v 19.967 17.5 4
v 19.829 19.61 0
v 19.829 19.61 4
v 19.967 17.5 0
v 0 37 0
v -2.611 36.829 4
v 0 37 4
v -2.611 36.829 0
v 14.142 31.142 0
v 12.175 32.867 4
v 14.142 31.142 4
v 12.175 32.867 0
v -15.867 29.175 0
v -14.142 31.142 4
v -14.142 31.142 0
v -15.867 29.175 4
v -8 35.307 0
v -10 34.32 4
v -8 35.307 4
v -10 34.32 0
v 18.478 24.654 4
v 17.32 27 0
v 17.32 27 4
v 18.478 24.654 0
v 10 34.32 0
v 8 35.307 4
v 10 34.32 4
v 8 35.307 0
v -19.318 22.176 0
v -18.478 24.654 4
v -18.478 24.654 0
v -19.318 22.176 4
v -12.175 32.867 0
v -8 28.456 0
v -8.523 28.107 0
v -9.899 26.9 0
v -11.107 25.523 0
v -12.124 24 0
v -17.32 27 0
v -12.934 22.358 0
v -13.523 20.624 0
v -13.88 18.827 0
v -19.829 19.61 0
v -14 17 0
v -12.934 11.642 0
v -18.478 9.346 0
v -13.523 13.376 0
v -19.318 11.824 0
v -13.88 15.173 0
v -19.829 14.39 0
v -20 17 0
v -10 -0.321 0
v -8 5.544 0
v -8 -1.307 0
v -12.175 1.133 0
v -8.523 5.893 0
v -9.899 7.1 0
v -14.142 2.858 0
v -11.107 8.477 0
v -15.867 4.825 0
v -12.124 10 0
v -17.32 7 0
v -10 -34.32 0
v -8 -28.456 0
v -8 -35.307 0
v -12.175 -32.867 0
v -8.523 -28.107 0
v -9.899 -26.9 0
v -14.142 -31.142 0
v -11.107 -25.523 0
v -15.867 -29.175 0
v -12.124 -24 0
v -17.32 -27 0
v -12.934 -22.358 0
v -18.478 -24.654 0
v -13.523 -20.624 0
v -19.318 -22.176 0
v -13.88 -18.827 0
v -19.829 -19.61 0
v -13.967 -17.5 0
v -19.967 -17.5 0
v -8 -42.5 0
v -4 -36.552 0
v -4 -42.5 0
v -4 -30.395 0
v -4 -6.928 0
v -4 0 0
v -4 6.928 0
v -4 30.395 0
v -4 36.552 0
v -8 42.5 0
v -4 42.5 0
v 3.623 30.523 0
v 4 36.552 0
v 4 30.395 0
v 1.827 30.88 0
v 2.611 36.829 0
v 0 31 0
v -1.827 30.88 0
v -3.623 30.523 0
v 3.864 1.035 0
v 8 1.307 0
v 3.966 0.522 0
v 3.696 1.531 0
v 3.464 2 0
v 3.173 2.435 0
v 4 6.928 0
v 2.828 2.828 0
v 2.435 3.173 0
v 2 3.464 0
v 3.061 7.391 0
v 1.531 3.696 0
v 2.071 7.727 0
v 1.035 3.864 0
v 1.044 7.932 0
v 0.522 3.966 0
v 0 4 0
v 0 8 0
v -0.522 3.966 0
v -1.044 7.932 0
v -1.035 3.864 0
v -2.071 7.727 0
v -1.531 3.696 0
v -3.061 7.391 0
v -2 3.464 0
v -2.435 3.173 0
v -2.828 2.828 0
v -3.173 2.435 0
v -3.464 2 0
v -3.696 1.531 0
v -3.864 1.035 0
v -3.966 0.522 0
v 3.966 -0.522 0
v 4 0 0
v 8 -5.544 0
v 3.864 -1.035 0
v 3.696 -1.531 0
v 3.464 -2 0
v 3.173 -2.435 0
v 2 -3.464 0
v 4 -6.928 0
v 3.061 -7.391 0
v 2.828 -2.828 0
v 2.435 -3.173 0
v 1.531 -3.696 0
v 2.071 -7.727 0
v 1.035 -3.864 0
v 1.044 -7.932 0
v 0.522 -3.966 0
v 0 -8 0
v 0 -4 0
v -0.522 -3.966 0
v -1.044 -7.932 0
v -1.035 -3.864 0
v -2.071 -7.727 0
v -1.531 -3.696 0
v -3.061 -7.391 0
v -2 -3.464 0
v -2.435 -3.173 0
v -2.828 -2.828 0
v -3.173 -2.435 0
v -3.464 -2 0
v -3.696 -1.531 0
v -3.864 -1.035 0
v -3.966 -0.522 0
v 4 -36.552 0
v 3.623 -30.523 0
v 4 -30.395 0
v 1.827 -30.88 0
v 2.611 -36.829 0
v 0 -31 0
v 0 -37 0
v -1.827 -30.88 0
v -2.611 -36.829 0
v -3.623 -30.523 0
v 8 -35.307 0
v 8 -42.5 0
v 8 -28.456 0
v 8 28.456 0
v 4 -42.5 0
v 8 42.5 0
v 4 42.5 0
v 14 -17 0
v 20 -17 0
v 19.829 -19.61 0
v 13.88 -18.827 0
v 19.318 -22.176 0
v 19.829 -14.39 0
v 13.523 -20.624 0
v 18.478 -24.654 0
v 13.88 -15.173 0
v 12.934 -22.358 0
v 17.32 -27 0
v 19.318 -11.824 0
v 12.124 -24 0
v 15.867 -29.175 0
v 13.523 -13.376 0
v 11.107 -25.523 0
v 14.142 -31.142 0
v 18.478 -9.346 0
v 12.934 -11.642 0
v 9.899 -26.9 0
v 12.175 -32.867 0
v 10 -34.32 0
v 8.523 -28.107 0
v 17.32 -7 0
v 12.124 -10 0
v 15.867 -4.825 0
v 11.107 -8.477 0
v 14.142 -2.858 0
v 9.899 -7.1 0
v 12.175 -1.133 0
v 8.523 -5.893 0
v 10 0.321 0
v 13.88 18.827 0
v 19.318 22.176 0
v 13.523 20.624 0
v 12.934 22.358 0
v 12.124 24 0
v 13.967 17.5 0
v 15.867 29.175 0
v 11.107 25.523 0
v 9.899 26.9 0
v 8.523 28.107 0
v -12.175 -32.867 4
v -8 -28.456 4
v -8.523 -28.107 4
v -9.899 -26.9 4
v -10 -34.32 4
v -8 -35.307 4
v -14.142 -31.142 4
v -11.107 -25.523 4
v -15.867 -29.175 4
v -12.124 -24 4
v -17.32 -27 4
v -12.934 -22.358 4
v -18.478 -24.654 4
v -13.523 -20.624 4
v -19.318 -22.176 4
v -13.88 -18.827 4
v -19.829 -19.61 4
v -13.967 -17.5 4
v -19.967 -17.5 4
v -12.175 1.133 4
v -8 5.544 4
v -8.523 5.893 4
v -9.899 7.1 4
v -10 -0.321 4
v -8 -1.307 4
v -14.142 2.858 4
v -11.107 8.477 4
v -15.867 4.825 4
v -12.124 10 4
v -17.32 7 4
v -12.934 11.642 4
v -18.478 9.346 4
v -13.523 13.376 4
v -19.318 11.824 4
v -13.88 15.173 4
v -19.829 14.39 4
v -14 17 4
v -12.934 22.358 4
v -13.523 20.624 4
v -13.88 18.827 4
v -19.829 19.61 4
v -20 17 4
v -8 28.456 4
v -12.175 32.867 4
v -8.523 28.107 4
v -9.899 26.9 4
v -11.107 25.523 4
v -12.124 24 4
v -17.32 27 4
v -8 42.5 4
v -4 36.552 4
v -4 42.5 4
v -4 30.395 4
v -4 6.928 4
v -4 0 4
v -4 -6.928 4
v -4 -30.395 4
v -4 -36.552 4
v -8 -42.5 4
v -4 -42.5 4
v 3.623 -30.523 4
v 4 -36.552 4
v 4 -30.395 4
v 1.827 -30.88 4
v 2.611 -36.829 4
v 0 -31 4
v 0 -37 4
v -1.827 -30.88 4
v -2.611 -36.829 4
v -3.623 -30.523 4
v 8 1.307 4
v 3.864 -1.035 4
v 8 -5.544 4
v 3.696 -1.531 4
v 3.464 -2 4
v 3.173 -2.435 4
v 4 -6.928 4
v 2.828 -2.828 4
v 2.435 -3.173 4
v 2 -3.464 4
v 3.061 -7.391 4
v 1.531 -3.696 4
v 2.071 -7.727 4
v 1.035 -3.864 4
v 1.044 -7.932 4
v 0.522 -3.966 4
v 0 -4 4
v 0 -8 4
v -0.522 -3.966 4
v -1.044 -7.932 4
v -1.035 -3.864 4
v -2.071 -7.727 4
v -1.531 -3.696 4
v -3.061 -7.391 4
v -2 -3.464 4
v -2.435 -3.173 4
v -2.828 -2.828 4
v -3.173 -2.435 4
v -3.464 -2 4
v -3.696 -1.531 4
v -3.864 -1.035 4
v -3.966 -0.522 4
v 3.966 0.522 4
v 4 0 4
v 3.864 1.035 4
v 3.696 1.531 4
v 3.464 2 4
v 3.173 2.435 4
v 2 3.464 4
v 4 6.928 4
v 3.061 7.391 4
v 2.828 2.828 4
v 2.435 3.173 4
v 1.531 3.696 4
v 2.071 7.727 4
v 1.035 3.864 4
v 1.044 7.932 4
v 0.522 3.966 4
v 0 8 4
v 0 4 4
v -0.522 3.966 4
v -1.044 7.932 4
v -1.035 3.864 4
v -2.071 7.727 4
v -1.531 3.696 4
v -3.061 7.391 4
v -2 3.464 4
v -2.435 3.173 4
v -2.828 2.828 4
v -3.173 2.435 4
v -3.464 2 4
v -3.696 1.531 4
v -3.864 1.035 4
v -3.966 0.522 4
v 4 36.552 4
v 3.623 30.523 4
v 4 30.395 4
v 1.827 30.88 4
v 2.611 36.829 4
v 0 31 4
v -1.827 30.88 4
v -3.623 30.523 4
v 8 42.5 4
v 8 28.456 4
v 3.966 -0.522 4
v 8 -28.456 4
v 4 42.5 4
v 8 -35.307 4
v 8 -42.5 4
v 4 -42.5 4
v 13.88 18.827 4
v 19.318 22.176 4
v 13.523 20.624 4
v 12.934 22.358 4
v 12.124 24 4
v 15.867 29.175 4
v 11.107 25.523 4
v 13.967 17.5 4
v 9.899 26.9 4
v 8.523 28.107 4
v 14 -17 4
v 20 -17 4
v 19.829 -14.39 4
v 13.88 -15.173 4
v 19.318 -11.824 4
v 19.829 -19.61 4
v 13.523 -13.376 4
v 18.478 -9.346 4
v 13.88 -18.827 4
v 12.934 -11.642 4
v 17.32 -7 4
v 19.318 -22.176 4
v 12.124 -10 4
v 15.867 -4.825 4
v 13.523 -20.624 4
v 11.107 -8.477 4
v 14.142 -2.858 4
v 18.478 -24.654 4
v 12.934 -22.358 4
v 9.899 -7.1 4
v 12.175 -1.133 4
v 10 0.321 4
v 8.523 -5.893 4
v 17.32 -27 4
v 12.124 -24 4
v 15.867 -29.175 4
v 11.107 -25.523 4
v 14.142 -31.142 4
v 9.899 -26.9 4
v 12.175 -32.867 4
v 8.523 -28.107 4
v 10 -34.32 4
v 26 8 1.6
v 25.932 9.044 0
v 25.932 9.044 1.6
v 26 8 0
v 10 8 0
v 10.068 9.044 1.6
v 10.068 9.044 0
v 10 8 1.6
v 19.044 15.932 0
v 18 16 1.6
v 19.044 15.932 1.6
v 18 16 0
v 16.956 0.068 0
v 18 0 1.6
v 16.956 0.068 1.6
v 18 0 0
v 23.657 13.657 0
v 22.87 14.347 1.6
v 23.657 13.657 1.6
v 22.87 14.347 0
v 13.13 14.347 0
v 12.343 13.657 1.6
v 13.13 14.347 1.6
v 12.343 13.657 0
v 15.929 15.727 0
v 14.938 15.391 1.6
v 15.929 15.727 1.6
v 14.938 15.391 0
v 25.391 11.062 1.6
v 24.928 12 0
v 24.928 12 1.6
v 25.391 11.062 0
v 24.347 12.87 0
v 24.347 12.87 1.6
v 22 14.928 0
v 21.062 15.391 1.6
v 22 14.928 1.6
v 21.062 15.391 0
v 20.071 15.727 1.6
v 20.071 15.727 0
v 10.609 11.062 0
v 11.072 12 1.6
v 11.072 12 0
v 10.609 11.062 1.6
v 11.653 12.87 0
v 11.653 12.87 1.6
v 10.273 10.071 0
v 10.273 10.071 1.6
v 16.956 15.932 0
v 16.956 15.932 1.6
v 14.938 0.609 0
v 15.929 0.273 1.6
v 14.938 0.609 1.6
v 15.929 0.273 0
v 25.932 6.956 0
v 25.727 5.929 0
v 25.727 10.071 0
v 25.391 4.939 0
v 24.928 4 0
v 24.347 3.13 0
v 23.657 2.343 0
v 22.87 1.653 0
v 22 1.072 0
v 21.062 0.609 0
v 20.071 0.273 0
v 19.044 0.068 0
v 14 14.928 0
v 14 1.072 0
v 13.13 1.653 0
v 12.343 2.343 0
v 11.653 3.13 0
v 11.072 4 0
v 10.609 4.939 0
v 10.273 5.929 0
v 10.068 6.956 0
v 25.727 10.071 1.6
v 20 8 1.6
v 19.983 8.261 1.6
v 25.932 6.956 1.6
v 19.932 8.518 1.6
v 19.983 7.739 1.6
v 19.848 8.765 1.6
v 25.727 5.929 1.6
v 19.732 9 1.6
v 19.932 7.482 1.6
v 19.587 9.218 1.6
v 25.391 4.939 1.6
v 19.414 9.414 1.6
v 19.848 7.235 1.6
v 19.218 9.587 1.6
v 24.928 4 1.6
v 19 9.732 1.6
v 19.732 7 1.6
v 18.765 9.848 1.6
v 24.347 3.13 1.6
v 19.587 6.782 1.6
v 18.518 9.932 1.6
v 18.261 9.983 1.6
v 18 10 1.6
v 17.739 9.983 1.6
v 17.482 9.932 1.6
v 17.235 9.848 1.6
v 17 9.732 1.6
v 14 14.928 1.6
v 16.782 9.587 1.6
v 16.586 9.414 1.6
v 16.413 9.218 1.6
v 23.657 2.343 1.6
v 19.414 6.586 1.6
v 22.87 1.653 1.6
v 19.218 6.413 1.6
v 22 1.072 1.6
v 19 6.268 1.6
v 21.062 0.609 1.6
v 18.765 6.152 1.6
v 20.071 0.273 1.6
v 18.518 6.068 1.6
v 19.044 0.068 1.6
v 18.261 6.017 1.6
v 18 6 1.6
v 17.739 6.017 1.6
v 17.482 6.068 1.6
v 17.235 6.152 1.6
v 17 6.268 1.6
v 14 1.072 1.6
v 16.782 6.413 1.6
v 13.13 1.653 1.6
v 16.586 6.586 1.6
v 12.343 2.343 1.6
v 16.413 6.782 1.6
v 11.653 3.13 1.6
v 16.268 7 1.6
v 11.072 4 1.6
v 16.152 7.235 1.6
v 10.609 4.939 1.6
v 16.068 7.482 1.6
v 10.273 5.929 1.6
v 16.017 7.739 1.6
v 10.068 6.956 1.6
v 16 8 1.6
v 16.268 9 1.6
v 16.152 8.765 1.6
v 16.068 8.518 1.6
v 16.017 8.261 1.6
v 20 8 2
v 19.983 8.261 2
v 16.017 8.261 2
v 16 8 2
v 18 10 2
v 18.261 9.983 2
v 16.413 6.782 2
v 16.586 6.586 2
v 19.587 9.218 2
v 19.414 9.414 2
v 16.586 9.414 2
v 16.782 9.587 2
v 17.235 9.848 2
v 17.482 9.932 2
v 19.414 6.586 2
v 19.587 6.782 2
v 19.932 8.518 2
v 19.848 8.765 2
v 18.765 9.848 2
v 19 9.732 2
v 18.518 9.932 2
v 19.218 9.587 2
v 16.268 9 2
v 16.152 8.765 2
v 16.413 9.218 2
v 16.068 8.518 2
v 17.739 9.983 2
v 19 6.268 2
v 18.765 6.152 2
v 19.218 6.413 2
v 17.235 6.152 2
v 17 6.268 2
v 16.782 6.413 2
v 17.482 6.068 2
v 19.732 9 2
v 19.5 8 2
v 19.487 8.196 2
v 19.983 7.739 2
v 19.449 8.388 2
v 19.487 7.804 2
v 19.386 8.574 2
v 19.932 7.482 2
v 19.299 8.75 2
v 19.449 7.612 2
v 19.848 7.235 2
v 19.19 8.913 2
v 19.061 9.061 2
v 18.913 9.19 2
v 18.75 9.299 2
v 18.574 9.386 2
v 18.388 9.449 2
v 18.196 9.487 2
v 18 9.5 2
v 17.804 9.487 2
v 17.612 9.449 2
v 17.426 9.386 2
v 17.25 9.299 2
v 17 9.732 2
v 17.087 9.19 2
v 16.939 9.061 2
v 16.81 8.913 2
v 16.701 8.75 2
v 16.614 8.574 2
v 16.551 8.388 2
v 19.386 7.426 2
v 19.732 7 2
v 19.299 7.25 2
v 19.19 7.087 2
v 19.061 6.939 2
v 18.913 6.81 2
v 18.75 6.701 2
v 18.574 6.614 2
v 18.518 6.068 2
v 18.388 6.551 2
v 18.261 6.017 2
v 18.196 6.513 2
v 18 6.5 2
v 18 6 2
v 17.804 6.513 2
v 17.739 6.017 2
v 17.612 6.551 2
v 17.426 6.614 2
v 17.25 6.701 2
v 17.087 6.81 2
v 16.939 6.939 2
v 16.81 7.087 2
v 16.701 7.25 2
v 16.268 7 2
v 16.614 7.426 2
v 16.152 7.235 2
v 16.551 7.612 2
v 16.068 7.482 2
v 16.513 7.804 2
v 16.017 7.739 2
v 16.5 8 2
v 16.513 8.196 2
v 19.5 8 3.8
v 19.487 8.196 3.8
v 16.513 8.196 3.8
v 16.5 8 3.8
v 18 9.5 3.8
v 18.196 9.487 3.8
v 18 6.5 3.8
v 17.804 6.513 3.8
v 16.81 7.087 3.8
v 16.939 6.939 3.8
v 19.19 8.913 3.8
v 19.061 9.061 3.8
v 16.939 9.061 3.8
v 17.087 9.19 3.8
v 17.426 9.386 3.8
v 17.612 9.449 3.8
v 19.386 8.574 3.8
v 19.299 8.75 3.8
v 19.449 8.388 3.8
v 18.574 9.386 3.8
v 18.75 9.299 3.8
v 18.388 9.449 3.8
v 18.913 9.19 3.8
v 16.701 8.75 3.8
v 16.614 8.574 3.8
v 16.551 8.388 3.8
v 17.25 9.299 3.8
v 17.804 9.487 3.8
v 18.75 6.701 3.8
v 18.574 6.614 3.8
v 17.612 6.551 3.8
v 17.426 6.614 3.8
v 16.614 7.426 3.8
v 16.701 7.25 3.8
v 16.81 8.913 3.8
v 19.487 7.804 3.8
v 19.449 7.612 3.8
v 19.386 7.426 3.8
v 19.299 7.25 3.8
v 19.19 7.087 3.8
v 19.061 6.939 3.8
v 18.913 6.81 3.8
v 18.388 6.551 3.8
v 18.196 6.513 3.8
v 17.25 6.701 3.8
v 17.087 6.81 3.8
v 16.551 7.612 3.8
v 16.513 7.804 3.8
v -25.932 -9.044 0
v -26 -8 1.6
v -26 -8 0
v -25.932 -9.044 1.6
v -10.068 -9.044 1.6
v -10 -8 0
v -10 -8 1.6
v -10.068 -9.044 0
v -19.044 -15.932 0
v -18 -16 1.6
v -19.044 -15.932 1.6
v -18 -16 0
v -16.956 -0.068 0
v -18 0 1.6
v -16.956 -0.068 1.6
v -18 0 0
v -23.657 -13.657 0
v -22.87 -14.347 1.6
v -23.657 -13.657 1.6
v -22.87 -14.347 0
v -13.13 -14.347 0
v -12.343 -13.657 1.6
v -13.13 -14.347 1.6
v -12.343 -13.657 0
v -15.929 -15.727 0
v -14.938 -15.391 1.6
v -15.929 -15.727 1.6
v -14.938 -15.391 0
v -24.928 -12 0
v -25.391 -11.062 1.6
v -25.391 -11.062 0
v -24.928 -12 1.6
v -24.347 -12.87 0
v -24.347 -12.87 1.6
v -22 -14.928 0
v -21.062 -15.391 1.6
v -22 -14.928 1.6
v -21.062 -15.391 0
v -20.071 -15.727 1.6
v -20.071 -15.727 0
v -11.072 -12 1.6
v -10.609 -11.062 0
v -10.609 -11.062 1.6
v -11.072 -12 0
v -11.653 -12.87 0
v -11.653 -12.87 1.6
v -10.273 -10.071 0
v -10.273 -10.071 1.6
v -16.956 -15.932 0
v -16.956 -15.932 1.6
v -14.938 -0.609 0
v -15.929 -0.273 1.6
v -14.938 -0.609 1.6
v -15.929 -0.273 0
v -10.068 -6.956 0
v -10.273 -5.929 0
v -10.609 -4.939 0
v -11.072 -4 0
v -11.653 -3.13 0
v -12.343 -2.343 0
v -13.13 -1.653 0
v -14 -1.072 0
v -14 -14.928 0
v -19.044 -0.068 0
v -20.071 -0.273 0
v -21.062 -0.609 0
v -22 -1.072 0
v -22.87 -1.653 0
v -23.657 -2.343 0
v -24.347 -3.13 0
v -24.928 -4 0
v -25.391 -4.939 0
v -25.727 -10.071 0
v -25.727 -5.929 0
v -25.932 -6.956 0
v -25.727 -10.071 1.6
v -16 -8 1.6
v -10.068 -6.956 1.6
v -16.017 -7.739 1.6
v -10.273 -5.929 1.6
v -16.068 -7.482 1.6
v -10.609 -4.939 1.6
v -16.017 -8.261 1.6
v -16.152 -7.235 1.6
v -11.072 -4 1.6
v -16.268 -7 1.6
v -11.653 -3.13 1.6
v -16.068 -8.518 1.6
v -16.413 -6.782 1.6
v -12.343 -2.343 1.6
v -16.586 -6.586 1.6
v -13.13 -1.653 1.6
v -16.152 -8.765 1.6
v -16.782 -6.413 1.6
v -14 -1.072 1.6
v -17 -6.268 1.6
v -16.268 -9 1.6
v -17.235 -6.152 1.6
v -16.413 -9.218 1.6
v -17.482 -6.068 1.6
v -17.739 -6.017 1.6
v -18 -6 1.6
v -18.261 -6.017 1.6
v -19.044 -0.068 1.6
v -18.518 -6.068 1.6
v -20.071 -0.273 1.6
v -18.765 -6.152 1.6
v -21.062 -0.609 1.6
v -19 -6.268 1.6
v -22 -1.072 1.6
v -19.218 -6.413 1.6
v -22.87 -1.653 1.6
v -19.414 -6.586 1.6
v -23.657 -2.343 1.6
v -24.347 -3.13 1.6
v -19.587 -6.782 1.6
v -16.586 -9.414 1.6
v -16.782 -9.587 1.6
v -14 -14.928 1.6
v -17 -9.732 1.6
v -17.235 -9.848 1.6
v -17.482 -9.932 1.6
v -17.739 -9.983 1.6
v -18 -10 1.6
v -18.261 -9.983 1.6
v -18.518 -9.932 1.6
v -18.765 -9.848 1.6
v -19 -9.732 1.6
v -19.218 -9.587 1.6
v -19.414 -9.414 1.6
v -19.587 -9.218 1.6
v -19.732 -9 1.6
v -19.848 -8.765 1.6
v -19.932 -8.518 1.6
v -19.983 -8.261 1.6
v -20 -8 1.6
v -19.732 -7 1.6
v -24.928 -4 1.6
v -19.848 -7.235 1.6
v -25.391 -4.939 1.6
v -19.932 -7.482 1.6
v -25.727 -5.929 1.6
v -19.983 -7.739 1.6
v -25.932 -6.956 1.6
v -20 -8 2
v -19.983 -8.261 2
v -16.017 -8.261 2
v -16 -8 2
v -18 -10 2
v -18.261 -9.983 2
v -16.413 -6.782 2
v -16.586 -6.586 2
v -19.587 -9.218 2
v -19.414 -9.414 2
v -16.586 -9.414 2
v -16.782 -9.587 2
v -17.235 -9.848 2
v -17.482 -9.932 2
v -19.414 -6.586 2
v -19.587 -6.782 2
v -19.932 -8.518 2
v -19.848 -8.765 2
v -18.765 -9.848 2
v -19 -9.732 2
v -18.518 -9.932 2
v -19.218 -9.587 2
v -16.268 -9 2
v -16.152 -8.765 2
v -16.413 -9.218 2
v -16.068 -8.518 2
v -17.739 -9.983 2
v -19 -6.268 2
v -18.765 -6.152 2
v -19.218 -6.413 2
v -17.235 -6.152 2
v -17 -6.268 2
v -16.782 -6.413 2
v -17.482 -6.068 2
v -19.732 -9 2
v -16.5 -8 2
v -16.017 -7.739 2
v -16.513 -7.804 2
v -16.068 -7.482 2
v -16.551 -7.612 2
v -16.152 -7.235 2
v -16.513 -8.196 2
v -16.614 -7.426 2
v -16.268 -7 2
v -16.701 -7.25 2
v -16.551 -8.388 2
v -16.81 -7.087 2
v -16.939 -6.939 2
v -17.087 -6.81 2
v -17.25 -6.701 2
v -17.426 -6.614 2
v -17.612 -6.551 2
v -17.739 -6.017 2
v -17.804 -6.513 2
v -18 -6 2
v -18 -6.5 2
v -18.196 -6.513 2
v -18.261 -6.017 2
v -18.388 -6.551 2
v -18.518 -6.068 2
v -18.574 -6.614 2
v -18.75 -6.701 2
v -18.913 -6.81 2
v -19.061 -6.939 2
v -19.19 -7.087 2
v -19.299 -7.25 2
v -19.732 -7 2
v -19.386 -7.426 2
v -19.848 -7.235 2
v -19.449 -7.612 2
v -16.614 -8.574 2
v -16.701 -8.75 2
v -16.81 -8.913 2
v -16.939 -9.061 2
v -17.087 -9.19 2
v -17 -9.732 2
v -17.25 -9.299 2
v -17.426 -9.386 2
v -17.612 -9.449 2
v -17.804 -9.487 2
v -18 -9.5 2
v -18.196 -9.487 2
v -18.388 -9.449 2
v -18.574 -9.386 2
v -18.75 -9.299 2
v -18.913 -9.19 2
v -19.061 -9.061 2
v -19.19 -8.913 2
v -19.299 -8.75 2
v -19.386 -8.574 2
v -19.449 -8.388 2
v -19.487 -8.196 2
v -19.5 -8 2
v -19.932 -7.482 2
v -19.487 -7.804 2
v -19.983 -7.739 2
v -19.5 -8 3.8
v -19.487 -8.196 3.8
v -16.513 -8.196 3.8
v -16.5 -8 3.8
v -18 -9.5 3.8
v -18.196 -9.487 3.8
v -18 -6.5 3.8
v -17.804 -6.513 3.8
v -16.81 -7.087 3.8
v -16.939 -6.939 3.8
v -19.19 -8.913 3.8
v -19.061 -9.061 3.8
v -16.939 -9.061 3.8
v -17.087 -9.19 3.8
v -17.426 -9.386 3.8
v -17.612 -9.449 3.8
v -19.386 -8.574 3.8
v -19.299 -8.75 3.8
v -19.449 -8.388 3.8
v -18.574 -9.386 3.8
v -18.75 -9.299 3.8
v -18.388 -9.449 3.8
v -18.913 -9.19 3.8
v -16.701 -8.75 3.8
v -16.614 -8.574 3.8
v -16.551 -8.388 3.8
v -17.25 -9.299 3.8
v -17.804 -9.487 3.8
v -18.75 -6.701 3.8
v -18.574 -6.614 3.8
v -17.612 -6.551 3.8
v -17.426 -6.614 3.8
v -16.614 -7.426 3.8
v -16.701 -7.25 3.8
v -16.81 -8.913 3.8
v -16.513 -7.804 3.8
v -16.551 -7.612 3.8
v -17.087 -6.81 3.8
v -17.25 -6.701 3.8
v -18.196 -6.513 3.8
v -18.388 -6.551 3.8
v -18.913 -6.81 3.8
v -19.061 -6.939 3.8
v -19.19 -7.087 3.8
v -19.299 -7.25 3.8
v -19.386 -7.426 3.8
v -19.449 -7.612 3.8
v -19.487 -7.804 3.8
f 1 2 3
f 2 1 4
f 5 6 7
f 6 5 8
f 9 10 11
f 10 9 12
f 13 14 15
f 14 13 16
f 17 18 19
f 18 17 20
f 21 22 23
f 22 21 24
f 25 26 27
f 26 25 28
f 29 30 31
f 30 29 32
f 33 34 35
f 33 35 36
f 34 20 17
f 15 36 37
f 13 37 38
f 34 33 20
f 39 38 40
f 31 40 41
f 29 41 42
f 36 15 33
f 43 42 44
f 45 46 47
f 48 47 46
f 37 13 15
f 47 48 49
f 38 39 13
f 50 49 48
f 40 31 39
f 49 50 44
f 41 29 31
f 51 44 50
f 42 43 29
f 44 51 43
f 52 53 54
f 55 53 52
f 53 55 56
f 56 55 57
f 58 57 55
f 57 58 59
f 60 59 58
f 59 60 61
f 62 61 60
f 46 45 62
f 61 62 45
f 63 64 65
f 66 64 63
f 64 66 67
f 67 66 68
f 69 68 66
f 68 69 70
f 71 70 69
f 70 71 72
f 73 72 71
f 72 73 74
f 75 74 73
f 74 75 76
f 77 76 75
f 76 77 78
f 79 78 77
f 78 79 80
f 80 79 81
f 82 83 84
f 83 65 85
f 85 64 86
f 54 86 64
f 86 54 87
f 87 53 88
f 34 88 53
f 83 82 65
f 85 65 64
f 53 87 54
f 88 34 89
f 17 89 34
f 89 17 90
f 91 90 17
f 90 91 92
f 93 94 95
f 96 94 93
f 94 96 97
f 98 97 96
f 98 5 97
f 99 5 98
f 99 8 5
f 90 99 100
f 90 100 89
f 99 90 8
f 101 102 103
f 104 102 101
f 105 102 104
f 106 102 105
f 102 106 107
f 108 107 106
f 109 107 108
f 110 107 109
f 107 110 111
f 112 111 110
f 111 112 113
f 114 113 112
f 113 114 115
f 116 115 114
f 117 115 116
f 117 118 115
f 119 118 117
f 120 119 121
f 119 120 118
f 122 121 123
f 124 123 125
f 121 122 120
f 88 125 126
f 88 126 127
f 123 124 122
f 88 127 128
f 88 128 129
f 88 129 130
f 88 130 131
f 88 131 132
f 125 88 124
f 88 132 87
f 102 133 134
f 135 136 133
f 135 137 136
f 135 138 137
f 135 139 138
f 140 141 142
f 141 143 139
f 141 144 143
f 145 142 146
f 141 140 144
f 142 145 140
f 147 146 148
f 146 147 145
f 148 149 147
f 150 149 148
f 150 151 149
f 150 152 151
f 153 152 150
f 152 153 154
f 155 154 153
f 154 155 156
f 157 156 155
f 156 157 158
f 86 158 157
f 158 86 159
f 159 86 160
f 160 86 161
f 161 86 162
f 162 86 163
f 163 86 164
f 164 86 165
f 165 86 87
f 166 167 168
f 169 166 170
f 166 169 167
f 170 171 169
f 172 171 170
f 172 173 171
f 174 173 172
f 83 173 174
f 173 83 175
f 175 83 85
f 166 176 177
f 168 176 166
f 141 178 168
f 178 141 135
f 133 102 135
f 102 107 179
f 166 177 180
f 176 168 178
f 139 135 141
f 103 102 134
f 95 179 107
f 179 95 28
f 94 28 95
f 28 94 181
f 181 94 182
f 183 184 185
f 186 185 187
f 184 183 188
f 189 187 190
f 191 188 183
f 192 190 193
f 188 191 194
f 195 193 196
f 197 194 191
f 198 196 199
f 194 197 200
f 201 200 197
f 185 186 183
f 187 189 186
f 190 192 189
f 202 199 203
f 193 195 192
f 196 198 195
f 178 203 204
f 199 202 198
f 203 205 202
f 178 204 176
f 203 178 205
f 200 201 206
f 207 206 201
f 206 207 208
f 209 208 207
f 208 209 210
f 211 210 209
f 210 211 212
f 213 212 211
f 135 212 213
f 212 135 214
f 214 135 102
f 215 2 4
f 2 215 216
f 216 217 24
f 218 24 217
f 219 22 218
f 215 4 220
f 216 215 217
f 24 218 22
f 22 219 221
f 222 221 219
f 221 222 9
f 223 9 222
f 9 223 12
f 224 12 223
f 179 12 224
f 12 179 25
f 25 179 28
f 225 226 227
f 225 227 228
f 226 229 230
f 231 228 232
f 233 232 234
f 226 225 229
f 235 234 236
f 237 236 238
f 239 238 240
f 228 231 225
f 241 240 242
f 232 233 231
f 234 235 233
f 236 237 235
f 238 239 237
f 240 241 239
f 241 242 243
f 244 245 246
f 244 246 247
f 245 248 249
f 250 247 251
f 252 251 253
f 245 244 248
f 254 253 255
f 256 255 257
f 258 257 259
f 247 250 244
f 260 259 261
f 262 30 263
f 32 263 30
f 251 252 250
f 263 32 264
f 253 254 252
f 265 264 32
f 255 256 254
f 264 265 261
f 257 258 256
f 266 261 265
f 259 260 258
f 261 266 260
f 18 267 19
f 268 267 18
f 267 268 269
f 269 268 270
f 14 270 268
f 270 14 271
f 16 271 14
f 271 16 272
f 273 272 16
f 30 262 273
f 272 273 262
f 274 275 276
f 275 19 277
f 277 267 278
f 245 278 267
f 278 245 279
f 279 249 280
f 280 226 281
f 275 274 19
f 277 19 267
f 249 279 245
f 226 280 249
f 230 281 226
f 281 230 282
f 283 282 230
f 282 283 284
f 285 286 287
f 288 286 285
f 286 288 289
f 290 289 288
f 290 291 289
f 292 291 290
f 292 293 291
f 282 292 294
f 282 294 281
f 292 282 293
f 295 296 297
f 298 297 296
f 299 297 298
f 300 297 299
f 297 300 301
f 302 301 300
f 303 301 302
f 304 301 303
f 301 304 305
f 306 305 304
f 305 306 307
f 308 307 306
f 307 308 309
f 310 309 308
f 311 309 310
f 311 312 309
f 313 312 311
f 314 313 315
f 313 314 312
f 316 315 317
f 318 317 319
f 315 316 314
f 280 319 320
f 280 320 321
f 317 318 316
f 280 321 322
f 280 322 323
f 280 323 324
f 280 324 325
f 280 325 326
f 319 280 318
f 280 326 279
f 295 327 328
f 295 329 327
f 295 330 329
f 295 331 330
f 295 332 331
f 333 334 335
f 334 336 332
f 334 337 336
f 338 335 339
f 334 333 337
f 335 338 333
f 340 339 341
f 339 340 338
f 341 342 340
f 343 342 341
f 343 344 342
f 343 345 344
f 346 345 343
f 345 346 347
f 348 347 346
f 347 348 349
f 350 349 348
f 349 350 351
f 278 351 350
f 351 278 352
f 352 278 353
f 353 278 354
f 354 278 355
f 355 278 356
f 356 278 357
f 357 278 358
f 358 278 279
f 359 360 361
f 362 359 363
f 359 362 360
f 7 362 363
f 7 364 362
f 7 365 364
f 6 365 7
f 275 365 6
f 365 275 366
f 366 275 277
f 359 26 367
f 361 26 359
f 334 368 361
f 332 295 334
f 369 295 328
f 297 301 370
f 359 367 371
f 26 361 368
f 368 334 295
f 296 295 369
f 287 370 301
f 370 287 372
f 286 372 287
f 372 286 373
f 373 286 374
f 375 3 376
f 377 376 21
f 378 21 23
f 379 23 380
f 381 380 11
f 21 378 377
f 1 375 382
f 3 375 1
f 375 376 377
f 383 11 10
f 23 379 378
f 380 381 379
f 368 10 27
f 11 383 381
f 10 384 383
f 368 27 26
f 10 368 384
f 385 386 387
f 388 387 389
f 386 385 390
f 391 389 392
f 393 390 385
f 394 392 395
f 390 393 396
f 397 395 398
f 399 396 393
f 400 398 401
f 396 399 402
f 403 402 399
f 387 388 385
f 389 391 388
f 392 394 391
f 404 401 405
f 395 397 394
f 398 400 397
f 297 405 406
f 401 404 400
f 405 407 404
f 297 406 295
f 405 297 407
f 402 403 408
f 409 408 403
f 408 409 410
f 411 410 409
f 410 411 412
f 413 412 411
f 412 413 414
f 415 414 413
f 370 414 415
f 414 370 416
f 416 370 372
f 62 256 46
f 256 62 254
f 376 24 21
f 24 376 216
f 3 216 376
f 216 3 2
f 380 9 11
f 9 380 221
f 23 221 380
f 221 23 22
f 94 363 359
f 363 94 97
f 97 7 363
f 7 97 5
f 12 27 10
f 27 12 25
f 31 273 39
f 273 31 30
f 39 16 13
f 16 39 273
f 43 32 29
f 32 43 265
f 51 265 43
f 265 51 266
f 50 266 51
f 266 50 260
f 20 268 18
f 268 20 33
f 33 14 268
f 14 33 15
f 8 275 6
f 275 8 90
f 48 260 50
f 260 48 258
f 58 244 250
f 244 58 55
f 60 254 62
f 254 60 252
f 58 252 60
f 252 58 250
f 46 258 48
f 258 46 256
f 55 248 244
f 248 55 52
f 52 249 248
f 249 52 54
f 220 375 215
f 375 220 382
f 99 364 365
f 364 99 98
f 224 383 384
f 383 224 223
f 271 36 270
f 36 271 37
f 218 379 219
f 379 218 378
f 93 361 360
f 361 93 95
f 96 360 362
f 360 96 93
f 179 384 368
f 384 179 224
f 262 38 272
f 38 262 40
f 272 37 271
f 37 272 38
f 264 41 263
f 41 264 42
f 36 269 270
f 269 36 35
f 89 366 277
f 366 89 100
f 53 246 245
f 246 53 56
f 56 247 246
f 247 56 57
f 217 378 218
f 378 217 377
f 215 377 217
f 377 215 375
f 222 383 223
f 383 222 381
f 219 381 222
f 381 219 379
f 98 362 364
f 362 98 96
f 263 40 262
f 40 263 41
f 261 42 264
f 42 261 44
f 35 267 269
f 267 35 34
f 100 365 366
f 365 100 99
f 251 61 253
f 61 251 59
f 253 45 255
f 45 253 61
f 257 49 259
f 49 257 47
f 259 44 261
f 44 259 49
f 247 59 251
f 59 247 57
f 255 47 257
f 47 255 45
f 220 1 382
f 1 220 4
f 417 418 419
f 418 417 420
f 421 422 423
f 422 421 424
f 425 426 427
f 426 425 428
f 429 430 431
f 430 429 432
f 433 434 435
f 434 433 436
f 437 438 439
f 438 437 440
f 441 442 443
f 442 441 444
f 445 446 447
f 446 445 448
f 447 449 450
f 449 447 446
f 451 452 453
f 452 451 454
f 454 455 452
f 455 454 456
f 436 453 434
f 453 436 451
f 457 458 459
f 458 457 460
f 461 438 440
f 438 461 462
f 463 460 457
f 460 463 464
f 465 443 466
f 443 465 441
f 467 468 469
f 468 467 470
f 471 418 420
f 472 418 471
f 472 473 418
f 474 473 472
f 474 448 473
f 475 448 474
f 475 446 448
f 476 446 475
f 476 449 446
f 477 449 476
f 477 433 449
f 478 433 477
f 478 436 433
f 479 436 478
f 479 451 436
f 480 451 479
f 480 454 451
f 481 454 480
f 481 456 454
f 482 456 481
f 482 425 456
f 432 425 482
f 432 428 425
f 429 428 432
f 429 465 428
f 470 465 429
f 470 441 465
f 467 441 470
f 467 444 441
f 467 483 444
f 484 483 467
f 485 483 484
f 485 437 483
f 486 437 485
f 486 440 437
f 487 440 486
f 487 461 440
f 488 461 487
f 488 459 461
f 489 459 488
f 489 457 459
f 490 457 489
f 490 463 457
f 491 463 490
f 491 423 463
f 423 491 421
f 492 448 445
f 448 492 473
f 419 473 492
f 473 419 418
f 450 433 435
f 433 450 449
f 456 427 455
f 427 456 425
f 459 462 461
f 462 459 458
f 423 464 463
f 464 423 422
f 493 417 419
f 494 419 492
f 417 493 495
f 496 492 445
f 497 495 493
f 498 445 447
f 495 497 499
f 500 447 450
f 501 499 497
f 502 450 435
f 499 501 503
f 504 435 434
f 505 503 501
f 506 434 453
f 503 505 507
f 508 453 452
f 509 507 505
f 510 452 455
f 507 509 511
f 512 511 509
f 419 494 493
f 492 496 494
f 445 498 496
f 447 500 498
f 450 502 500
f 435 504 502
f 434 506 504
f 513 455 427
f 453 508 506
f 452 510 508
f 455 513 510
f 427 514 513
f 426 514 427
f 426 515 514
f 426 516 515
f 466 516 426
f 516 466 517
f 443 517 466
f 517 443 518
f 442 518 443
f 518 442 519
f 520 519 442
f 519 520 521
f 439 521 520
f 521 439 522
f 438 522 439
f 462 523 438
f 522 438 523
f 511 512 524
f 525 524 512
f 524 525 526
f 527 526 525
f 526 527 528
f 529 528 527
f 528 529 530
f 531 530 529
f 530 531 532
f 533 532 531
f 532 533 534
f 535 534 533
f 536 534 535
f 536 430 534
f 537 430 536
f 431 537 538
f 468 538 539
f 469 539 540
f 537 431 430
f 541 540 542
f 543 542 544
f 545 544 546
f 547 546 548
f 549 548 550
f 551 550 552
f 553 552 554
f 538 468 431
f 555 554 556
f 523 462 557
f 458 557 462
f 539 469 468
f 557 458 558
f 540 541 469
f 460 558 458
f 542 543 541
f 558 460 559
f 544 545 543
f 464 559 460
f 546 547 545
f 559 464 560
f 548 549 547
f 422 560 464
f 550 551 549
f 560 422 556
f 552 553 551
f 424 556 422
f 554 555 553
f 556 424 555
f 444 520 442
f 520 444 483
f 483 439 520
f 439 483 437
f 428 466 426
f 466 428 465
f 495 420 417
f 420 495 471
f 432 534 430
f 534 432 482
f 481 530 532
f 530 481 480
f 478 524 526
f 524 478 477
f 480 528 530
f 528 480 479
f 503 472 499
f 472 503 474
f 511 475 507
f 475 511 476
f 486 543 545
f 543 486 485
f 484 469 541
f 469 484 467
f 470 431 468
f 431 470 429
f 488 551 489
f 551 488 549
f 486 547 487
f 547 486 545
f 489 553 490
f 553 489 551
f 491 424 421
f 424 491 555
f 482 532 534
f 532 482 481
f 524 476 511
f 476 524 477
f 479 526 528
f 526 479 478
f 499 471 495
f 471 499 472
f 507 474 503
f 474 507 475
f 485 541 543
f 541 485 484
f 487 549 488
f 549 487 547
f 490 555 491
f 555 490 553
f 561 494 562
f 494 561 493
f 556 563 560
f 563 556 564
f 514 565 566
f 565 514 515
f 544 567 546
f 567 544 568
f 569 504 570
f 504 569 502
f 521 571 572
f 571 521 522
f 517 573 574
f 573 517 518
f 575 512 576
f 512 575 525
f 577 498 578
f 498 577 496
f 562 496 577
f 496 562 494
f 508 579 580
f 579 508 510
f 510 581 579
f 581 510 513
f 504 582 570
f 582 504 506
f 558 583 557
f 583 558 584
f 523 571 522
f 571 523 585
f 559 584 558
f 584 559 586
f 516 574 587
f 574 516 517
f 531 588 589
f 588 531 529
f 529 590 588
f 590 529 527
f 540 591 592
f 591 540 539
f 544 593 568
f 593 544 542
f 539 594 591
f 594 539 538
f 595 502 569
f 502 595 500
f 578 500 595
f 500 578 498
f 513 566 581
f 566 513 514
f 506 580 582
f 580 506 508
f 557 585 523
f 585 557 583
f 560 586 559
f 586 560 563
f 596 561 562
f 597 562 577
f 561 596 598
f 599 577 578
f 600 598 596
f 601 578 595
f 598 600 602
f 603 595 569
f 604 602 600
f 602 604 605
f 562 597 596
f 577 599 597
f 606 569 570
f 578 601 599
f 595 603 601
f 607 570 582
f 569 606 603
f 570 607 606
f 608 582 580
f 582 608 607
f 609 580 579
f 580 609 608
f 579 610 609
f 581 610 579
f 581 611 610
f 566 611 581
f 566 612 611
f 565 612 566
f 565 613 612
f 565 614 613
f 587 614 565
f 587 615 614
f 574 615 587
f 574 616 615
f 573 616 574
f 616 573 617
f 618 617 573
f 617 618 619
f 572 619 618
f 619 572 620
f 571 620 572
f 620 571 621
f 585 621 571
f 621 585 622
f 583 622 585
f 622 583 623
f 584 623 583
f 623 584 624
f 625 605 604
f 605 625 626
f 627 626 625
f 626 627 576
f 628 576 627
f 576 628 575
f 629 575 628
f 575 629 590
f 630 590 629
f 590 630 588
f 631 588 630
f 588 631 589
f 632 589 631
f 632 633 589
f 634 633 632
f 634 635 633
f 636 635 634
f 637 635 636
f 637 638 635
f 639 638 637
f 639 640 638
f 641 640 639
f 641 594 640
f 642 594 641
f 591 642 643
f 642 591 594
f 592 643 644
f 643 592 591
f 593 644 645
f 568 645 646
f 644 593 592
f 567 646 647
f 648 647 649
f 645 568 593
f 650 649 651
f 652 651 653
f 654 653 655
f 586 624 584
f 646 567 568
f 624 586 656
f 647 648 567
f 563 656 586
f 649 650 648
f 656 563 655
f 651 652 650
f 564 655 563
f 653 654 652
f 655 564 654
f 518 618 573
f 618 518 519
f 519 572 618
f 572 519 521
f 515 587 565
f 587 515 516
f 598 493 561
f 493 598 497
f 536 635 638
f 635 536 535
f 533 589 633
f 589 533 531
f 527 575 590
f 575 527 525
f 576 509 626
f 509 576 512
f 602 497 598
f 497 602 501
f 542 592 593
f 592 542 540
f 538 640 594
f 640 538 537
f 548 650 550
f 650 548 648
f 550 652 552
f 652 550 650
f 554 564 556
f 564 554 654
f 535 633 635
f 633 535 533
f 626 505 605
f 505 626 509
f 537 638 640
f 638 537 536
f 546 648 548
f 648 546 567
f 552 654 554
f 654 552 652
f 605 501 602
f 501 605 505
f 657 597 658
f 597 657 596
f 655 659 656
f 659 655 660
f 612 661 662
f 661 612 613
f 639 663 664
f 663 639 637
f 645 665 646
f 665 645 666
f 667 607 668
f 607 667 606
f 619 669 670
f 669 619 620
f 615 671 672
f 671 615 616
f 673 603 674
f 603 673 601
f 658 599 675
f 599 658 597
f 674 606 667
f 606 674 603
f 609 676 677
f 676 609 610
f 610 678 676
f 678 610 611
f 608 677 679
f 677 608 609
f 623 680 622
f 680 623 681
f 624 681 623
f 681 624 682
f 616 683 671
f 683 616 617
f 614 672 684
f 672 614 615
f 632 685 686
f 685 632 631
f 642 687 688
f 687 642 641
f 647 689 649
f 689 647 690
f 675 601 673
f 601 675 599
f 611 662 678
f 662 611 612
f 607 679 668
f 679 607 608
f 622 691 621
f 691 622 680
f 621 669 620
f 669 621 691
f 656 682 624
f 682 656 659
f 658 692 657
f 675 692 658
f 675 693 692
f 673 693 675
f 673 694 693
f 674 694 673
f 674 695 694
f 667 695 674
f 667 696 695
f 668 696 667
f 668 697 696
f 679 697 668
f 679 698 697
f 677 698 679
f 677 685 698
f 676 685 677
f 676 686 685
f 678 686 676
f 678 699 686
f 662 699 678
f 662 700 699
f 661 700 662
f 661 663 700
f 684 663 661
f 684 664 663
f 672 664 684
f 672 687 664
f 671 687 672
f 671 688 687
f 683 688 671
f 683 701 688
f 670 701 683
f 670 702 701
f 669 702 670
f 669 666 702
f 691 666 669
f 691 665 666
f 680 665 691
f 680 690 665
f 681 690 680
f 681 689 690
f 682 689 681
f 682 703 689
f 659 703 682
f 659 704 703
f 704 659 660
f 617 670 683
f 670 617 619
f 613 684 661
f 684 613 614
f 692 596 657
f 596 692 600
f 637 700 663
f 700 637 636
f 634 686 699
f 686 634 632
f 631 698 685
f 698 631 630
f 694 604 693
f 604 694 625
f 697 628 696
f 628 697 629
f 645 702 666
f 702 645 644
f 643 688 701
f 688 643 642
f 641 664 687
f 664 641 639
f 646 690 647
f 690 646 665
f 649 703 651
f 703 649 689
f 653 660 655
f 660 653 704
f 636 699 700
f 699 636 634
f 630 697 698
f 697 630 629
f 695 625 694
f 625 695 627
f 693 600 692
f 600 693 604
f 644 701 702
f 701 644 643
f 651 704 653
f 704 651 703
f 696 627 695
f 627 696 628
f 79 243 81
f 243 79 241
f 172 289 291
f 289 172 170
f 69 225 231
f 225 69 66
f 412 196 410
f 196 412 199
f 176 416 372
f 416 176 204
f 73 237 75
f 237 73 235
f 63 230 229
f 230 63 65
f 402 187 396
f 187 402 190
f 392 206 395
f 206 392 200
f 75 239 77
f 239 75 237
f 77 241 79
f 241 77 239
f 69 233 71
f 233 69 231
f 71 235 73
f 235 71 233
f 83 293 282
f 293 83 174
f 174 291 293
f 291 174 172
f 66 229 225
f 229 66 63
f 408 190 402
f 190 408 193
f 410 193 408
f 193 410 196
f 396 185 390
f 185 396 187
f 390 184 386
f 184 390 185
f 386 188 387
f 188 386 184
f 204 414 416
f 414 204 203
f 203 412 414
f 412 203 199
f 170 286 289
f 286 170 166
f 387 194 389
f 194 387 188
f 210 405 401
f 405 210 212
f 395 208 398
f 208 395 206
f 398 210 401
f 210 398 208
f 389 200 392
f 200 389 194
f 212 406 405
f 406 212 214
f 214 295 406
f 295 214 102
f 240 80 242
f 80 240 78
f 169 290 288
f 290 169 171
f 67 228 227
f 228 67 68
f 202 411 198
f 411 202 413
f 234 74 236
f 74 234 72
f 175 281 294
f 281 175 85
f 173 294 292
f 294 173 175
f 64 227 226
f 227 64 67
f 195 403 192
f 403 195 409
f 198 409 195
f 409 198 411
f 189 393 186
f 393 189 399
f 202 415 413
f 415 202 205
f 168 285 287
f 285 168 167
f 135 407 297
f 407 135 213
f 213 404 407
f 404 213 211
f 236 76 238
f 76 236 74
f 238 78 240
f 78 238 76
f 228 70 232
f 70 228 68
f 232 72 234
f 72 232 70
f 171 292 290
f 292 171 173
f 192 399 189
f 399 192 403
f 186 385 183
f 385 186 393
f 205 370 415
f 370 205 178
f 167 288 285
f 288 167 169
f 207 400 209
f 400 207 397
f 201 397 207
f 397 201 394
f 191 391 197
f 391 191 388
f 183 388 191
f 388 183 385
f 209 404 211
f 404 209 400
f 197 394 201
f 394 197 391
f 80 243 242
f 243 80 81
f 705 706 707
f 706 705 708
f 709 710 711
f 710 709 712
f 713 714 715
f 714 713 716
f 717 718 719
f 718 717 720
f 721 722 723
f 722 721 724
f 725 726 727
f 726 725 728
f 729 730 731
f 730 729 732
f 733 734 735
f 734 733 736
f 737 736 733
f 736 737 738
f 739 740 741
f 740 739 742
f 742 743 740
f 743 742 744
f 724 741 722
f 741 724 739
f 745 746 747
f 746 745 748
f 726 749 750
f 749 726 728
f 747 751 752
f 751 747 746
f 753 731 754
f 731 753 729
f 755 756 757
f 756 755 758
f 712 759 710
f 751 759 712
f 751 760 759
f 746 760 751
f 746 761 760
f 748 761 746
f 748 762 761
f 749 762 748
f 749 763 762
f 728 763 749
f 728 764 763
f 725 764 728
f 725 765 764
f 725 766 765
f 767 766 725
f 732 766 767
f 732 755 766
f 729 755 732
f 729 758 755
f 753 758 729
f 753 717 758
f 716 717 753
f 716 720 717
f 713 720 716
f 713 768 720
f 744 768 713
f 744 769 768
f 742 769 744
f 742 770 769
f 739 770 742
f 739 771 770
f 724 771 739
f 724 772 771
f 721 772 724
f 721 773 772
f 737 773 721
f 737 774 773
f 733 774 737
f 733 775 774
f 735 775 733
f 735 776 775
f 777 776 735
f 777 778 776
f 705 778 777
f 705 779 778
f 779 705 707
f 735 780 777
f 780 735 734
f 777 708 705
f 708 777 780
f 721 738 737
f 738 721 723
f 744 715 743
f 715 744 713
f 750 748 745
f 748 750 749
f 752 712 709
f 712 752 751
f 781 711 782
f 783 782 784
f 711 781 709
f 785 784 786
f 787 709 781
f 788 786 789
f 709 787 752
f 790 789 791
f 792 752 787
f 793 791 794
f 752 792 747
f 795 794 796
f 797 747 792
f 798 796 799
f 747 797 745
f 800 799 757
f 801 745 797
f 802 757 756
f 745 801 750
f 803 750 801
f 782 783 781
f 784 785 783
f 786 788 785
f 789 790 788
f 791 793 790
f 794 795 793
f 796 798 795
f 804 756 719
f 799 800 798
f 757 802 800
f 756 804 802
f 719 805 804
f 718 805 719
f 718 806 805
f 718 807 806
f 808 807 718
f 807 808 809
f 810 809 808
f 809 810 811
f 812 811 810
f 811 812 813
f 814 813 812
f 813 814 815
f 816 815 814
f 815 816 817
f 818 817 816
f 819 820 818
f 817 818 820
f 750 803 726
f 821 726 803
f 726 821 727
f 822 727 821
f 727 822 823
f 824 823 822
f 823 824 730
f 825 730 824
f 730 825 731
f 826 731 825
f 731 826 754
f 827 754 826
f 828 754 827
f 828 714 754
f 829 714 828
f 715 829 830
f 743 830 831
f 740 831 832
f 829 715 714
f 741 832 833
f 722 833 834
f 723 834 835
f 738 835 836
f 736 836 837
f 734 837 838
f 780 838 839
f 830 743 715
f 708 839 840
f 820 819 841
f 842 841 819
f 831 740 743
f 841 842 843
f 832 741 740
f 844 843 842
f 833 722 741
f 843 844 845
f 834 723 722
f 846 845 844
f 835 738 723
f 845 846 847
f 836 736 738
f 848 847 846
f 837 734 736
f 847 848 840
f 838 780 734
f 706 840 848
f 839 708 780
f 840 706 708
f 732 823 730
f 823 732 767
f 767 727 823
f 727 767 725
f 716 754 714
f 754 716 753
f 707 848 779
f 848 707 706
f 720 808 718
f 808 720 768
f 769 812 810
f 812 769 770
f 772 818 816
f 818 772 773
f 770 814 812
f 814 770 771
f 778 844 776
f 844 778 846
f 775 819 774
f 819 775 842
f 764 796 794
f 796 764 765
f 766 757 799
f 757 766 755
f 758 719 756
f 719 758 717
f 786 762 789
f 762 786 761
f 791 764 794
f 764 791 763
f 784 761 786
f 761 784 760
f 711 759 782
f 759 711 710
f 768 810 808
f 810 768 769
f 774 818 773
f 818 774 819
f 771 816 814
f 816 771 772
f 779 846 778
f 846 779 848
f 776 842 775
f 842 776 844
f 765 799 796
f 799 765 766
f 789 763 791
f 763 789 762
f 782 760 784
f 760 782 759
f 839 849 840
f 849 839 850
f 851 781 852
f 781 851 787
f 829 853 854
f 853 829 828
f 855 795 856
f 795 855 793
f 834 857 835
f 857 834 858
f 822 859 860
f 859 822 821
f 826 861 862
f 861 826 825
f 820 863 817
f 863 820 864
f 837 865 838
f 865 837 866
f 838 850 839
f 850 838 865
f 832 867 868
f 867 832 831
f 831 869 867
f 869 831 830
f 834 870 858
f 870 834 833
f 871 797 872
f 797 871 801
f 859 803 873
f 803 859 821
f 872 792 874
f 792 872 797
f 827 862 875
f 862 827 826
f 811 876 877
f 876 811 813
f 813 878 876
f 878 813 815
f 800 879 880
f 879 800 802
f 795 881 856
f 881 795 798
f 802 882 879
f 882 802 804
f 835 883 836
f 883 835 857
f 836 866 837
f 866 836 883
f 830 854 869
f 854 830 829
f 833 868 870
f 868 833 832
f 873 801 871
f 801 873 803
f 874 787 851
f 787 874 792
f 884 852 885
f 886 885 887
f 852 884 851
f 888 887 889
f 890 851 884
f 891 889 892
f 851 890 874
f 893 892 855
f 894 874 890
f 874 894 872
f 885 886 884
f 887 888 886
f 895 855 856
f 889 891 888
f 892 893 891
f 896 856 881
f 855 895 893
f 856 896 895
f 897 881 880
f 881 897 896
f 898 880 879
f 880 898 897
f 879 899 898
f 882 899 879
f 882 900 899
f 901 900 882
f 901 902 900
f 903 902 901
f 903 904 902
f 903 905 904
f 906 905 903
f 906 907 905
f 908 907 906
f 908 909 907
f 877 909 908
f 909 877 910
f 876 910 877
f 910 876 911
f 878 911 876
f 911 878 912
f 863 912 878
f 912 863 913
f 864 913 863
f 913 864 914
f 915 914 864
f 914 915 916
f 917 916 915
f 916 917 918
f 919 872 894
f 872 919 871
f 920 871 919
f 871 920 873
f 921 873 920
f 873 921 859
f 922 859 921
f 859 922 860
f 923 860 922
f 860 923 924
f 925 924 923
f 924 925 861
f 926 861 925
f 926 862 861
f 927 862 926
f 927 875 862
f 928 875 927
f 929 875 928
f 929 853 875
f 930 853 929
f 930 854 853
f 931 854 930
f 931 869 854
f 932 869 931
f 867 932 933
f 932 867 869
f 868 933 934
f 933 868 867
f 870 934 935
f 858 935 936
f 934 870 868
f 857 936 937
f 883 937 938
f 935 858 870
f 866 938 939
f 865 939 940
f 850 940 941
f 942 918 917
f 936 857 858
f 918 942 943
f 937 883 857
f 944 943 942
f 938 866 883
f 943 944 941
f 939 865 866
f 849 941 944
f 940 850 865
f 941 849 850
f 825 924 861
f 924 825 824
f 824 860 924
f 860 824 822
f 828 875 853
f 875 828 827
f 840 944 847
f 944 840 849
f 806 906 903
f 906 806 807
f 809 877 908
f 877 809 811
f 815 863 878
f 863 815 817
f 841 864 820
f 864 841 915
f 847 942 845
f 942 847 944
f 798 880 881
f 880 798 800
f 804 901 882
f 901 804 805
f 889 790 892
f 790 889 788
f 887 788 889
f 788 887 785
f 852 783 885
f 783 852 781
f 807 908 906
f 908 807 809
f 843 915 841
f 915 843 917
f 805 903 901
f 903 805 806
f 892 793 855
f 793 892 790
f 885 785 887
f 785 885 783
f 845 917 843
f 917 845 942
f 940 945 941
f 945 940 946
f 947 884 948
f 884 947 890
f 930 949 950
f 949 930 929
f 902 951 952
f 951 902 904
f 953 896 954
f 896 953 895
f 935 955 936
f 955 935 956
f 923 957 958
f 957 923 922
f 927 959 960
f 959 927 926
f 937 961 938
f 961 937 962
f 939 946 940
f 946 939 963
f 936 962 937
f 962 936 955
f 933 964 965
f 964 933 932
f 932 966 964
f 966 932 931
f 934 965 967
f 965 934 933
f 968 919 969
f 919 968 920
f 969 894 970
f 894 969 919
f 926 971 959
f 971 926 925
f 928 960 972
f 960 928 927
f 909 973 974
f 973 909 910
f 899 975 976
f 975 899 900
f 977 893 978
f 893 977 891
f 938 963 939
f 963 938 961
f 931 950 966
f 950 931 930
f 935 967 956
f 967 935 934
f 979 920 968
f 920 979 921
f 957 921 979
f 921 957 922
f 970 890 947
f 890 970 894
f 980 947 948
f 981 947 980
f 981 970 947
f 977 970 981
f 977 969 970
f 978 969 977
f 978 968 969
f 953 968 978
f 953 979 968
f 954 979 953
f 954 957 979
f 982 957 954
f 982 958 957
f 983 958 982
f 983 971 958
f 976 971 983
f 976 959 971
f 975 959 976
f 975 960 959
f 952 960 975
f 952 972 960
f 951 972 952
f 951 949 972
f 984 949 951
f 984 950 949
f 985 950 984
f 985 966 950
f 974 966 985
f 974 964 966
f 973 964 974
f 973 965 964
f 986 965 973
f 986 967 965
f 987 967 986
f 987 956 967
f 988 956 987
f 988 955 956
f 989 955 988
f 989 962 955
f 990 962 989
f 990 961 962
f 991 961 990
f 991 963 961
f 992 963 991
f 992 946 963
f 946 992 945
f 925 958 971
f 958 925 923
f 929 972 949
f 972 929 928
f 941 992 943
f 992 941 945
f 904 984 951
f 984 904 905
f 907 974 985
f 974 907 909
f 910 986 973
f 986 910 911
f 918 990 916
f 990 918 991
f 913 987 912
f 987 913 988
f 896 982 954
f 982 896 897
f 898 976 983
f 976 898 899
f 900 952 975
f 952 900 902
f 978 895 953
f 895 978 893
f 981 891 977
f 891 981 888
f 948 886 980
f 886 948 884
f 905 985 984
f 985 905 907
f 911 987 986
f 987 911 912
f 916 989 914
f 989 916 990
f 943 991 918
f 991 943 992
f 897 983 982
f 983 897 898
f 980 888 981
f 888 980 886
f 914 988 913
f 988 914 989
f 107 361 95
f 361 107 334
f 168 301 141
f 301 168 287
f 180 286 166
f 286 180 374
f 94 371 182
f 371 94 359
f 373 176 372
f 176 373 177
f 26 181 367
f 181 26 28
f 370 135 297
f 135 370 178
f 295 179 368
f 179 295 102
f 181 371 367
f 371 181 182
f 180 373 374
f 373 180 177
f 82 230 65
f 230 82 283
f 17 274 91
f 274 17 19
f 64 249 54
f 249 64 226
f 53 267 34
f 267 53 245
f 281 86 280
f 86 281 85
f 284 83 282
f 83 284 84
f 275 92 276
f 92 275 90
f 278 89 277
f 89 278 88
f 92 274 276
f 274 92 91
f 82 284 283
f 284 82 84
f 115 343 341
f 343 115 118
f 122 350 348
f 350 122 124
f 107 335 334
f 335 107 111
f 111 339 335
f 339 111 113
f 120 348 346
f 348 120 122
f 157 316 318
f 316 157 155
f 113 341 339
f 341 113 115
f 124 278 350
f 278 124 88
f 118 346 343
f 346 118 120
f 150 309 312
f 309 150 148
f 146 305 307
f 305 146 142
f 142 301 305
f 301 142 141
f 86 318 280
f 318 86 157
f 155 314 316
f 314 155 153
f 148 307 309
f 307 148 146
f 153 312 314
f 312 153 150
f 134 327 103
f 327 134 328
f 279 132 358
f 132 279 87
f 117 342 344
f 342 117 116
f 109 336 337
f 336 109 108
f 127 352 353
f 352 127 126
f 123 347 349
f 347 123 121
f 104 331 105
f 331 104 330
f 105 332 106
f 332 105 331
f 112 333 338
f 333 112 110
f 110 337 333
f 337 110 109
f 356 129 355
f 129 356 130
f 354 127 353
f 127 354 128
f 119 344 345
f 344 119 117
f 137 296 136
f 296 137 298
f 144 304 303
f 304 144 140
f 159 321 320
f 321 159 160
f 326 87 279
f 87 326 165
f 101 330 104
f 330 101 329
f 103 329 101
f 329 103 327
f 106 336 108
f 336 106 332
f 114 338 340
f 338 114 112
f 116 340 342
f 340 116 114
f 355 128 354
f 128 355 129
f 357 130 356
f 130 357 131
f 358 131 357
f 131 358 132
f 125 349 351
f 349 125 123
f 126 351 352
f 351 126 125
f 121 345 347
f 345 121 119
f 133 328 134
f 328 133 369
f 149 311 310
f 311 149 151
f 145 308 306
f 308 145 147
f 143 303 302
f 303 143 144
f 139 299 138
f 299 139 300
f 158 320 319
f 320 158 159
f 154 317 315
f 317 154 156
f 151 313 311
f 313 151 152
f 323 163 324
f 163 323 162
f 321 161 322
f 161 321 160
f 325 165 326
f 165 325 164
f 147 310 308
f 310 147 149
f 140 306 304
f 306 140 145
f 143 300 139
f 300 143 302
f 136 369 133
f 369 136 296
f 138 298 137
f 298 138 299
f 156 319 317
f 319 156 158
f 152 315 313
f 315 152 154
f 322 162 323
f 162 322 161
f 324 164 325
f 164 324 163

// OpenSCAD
$fn = 48;

module s() {
    difference() {
        translate([0, 17, 0]) cylinder(d=40, h=4);
        translate([0, 17, -0.1]) cylinder(d=28, h=4.2);
        translate([0, -2.5, -0.1]) cube([30, 20, 4.2]);
    }
    
    translate([18, 8, 0])  hub();
}

difference() {
    union() {
        s();
        rotate([0, 0, 180]) s();

        translate([4, -42.5, 0]) cube([4, 85, 4]);
        translate([-8, -42.5, 0]) cube([4, 85, 4]);
        cylinder(d=16, h=4);
    }
    cylinder(d=8, h=4.2);
}

module hub() {
    cylinder(d=16, h=1.6);
    cylinder(d=4, h=2);
    cylinder(d=3, h=3.8);
}
